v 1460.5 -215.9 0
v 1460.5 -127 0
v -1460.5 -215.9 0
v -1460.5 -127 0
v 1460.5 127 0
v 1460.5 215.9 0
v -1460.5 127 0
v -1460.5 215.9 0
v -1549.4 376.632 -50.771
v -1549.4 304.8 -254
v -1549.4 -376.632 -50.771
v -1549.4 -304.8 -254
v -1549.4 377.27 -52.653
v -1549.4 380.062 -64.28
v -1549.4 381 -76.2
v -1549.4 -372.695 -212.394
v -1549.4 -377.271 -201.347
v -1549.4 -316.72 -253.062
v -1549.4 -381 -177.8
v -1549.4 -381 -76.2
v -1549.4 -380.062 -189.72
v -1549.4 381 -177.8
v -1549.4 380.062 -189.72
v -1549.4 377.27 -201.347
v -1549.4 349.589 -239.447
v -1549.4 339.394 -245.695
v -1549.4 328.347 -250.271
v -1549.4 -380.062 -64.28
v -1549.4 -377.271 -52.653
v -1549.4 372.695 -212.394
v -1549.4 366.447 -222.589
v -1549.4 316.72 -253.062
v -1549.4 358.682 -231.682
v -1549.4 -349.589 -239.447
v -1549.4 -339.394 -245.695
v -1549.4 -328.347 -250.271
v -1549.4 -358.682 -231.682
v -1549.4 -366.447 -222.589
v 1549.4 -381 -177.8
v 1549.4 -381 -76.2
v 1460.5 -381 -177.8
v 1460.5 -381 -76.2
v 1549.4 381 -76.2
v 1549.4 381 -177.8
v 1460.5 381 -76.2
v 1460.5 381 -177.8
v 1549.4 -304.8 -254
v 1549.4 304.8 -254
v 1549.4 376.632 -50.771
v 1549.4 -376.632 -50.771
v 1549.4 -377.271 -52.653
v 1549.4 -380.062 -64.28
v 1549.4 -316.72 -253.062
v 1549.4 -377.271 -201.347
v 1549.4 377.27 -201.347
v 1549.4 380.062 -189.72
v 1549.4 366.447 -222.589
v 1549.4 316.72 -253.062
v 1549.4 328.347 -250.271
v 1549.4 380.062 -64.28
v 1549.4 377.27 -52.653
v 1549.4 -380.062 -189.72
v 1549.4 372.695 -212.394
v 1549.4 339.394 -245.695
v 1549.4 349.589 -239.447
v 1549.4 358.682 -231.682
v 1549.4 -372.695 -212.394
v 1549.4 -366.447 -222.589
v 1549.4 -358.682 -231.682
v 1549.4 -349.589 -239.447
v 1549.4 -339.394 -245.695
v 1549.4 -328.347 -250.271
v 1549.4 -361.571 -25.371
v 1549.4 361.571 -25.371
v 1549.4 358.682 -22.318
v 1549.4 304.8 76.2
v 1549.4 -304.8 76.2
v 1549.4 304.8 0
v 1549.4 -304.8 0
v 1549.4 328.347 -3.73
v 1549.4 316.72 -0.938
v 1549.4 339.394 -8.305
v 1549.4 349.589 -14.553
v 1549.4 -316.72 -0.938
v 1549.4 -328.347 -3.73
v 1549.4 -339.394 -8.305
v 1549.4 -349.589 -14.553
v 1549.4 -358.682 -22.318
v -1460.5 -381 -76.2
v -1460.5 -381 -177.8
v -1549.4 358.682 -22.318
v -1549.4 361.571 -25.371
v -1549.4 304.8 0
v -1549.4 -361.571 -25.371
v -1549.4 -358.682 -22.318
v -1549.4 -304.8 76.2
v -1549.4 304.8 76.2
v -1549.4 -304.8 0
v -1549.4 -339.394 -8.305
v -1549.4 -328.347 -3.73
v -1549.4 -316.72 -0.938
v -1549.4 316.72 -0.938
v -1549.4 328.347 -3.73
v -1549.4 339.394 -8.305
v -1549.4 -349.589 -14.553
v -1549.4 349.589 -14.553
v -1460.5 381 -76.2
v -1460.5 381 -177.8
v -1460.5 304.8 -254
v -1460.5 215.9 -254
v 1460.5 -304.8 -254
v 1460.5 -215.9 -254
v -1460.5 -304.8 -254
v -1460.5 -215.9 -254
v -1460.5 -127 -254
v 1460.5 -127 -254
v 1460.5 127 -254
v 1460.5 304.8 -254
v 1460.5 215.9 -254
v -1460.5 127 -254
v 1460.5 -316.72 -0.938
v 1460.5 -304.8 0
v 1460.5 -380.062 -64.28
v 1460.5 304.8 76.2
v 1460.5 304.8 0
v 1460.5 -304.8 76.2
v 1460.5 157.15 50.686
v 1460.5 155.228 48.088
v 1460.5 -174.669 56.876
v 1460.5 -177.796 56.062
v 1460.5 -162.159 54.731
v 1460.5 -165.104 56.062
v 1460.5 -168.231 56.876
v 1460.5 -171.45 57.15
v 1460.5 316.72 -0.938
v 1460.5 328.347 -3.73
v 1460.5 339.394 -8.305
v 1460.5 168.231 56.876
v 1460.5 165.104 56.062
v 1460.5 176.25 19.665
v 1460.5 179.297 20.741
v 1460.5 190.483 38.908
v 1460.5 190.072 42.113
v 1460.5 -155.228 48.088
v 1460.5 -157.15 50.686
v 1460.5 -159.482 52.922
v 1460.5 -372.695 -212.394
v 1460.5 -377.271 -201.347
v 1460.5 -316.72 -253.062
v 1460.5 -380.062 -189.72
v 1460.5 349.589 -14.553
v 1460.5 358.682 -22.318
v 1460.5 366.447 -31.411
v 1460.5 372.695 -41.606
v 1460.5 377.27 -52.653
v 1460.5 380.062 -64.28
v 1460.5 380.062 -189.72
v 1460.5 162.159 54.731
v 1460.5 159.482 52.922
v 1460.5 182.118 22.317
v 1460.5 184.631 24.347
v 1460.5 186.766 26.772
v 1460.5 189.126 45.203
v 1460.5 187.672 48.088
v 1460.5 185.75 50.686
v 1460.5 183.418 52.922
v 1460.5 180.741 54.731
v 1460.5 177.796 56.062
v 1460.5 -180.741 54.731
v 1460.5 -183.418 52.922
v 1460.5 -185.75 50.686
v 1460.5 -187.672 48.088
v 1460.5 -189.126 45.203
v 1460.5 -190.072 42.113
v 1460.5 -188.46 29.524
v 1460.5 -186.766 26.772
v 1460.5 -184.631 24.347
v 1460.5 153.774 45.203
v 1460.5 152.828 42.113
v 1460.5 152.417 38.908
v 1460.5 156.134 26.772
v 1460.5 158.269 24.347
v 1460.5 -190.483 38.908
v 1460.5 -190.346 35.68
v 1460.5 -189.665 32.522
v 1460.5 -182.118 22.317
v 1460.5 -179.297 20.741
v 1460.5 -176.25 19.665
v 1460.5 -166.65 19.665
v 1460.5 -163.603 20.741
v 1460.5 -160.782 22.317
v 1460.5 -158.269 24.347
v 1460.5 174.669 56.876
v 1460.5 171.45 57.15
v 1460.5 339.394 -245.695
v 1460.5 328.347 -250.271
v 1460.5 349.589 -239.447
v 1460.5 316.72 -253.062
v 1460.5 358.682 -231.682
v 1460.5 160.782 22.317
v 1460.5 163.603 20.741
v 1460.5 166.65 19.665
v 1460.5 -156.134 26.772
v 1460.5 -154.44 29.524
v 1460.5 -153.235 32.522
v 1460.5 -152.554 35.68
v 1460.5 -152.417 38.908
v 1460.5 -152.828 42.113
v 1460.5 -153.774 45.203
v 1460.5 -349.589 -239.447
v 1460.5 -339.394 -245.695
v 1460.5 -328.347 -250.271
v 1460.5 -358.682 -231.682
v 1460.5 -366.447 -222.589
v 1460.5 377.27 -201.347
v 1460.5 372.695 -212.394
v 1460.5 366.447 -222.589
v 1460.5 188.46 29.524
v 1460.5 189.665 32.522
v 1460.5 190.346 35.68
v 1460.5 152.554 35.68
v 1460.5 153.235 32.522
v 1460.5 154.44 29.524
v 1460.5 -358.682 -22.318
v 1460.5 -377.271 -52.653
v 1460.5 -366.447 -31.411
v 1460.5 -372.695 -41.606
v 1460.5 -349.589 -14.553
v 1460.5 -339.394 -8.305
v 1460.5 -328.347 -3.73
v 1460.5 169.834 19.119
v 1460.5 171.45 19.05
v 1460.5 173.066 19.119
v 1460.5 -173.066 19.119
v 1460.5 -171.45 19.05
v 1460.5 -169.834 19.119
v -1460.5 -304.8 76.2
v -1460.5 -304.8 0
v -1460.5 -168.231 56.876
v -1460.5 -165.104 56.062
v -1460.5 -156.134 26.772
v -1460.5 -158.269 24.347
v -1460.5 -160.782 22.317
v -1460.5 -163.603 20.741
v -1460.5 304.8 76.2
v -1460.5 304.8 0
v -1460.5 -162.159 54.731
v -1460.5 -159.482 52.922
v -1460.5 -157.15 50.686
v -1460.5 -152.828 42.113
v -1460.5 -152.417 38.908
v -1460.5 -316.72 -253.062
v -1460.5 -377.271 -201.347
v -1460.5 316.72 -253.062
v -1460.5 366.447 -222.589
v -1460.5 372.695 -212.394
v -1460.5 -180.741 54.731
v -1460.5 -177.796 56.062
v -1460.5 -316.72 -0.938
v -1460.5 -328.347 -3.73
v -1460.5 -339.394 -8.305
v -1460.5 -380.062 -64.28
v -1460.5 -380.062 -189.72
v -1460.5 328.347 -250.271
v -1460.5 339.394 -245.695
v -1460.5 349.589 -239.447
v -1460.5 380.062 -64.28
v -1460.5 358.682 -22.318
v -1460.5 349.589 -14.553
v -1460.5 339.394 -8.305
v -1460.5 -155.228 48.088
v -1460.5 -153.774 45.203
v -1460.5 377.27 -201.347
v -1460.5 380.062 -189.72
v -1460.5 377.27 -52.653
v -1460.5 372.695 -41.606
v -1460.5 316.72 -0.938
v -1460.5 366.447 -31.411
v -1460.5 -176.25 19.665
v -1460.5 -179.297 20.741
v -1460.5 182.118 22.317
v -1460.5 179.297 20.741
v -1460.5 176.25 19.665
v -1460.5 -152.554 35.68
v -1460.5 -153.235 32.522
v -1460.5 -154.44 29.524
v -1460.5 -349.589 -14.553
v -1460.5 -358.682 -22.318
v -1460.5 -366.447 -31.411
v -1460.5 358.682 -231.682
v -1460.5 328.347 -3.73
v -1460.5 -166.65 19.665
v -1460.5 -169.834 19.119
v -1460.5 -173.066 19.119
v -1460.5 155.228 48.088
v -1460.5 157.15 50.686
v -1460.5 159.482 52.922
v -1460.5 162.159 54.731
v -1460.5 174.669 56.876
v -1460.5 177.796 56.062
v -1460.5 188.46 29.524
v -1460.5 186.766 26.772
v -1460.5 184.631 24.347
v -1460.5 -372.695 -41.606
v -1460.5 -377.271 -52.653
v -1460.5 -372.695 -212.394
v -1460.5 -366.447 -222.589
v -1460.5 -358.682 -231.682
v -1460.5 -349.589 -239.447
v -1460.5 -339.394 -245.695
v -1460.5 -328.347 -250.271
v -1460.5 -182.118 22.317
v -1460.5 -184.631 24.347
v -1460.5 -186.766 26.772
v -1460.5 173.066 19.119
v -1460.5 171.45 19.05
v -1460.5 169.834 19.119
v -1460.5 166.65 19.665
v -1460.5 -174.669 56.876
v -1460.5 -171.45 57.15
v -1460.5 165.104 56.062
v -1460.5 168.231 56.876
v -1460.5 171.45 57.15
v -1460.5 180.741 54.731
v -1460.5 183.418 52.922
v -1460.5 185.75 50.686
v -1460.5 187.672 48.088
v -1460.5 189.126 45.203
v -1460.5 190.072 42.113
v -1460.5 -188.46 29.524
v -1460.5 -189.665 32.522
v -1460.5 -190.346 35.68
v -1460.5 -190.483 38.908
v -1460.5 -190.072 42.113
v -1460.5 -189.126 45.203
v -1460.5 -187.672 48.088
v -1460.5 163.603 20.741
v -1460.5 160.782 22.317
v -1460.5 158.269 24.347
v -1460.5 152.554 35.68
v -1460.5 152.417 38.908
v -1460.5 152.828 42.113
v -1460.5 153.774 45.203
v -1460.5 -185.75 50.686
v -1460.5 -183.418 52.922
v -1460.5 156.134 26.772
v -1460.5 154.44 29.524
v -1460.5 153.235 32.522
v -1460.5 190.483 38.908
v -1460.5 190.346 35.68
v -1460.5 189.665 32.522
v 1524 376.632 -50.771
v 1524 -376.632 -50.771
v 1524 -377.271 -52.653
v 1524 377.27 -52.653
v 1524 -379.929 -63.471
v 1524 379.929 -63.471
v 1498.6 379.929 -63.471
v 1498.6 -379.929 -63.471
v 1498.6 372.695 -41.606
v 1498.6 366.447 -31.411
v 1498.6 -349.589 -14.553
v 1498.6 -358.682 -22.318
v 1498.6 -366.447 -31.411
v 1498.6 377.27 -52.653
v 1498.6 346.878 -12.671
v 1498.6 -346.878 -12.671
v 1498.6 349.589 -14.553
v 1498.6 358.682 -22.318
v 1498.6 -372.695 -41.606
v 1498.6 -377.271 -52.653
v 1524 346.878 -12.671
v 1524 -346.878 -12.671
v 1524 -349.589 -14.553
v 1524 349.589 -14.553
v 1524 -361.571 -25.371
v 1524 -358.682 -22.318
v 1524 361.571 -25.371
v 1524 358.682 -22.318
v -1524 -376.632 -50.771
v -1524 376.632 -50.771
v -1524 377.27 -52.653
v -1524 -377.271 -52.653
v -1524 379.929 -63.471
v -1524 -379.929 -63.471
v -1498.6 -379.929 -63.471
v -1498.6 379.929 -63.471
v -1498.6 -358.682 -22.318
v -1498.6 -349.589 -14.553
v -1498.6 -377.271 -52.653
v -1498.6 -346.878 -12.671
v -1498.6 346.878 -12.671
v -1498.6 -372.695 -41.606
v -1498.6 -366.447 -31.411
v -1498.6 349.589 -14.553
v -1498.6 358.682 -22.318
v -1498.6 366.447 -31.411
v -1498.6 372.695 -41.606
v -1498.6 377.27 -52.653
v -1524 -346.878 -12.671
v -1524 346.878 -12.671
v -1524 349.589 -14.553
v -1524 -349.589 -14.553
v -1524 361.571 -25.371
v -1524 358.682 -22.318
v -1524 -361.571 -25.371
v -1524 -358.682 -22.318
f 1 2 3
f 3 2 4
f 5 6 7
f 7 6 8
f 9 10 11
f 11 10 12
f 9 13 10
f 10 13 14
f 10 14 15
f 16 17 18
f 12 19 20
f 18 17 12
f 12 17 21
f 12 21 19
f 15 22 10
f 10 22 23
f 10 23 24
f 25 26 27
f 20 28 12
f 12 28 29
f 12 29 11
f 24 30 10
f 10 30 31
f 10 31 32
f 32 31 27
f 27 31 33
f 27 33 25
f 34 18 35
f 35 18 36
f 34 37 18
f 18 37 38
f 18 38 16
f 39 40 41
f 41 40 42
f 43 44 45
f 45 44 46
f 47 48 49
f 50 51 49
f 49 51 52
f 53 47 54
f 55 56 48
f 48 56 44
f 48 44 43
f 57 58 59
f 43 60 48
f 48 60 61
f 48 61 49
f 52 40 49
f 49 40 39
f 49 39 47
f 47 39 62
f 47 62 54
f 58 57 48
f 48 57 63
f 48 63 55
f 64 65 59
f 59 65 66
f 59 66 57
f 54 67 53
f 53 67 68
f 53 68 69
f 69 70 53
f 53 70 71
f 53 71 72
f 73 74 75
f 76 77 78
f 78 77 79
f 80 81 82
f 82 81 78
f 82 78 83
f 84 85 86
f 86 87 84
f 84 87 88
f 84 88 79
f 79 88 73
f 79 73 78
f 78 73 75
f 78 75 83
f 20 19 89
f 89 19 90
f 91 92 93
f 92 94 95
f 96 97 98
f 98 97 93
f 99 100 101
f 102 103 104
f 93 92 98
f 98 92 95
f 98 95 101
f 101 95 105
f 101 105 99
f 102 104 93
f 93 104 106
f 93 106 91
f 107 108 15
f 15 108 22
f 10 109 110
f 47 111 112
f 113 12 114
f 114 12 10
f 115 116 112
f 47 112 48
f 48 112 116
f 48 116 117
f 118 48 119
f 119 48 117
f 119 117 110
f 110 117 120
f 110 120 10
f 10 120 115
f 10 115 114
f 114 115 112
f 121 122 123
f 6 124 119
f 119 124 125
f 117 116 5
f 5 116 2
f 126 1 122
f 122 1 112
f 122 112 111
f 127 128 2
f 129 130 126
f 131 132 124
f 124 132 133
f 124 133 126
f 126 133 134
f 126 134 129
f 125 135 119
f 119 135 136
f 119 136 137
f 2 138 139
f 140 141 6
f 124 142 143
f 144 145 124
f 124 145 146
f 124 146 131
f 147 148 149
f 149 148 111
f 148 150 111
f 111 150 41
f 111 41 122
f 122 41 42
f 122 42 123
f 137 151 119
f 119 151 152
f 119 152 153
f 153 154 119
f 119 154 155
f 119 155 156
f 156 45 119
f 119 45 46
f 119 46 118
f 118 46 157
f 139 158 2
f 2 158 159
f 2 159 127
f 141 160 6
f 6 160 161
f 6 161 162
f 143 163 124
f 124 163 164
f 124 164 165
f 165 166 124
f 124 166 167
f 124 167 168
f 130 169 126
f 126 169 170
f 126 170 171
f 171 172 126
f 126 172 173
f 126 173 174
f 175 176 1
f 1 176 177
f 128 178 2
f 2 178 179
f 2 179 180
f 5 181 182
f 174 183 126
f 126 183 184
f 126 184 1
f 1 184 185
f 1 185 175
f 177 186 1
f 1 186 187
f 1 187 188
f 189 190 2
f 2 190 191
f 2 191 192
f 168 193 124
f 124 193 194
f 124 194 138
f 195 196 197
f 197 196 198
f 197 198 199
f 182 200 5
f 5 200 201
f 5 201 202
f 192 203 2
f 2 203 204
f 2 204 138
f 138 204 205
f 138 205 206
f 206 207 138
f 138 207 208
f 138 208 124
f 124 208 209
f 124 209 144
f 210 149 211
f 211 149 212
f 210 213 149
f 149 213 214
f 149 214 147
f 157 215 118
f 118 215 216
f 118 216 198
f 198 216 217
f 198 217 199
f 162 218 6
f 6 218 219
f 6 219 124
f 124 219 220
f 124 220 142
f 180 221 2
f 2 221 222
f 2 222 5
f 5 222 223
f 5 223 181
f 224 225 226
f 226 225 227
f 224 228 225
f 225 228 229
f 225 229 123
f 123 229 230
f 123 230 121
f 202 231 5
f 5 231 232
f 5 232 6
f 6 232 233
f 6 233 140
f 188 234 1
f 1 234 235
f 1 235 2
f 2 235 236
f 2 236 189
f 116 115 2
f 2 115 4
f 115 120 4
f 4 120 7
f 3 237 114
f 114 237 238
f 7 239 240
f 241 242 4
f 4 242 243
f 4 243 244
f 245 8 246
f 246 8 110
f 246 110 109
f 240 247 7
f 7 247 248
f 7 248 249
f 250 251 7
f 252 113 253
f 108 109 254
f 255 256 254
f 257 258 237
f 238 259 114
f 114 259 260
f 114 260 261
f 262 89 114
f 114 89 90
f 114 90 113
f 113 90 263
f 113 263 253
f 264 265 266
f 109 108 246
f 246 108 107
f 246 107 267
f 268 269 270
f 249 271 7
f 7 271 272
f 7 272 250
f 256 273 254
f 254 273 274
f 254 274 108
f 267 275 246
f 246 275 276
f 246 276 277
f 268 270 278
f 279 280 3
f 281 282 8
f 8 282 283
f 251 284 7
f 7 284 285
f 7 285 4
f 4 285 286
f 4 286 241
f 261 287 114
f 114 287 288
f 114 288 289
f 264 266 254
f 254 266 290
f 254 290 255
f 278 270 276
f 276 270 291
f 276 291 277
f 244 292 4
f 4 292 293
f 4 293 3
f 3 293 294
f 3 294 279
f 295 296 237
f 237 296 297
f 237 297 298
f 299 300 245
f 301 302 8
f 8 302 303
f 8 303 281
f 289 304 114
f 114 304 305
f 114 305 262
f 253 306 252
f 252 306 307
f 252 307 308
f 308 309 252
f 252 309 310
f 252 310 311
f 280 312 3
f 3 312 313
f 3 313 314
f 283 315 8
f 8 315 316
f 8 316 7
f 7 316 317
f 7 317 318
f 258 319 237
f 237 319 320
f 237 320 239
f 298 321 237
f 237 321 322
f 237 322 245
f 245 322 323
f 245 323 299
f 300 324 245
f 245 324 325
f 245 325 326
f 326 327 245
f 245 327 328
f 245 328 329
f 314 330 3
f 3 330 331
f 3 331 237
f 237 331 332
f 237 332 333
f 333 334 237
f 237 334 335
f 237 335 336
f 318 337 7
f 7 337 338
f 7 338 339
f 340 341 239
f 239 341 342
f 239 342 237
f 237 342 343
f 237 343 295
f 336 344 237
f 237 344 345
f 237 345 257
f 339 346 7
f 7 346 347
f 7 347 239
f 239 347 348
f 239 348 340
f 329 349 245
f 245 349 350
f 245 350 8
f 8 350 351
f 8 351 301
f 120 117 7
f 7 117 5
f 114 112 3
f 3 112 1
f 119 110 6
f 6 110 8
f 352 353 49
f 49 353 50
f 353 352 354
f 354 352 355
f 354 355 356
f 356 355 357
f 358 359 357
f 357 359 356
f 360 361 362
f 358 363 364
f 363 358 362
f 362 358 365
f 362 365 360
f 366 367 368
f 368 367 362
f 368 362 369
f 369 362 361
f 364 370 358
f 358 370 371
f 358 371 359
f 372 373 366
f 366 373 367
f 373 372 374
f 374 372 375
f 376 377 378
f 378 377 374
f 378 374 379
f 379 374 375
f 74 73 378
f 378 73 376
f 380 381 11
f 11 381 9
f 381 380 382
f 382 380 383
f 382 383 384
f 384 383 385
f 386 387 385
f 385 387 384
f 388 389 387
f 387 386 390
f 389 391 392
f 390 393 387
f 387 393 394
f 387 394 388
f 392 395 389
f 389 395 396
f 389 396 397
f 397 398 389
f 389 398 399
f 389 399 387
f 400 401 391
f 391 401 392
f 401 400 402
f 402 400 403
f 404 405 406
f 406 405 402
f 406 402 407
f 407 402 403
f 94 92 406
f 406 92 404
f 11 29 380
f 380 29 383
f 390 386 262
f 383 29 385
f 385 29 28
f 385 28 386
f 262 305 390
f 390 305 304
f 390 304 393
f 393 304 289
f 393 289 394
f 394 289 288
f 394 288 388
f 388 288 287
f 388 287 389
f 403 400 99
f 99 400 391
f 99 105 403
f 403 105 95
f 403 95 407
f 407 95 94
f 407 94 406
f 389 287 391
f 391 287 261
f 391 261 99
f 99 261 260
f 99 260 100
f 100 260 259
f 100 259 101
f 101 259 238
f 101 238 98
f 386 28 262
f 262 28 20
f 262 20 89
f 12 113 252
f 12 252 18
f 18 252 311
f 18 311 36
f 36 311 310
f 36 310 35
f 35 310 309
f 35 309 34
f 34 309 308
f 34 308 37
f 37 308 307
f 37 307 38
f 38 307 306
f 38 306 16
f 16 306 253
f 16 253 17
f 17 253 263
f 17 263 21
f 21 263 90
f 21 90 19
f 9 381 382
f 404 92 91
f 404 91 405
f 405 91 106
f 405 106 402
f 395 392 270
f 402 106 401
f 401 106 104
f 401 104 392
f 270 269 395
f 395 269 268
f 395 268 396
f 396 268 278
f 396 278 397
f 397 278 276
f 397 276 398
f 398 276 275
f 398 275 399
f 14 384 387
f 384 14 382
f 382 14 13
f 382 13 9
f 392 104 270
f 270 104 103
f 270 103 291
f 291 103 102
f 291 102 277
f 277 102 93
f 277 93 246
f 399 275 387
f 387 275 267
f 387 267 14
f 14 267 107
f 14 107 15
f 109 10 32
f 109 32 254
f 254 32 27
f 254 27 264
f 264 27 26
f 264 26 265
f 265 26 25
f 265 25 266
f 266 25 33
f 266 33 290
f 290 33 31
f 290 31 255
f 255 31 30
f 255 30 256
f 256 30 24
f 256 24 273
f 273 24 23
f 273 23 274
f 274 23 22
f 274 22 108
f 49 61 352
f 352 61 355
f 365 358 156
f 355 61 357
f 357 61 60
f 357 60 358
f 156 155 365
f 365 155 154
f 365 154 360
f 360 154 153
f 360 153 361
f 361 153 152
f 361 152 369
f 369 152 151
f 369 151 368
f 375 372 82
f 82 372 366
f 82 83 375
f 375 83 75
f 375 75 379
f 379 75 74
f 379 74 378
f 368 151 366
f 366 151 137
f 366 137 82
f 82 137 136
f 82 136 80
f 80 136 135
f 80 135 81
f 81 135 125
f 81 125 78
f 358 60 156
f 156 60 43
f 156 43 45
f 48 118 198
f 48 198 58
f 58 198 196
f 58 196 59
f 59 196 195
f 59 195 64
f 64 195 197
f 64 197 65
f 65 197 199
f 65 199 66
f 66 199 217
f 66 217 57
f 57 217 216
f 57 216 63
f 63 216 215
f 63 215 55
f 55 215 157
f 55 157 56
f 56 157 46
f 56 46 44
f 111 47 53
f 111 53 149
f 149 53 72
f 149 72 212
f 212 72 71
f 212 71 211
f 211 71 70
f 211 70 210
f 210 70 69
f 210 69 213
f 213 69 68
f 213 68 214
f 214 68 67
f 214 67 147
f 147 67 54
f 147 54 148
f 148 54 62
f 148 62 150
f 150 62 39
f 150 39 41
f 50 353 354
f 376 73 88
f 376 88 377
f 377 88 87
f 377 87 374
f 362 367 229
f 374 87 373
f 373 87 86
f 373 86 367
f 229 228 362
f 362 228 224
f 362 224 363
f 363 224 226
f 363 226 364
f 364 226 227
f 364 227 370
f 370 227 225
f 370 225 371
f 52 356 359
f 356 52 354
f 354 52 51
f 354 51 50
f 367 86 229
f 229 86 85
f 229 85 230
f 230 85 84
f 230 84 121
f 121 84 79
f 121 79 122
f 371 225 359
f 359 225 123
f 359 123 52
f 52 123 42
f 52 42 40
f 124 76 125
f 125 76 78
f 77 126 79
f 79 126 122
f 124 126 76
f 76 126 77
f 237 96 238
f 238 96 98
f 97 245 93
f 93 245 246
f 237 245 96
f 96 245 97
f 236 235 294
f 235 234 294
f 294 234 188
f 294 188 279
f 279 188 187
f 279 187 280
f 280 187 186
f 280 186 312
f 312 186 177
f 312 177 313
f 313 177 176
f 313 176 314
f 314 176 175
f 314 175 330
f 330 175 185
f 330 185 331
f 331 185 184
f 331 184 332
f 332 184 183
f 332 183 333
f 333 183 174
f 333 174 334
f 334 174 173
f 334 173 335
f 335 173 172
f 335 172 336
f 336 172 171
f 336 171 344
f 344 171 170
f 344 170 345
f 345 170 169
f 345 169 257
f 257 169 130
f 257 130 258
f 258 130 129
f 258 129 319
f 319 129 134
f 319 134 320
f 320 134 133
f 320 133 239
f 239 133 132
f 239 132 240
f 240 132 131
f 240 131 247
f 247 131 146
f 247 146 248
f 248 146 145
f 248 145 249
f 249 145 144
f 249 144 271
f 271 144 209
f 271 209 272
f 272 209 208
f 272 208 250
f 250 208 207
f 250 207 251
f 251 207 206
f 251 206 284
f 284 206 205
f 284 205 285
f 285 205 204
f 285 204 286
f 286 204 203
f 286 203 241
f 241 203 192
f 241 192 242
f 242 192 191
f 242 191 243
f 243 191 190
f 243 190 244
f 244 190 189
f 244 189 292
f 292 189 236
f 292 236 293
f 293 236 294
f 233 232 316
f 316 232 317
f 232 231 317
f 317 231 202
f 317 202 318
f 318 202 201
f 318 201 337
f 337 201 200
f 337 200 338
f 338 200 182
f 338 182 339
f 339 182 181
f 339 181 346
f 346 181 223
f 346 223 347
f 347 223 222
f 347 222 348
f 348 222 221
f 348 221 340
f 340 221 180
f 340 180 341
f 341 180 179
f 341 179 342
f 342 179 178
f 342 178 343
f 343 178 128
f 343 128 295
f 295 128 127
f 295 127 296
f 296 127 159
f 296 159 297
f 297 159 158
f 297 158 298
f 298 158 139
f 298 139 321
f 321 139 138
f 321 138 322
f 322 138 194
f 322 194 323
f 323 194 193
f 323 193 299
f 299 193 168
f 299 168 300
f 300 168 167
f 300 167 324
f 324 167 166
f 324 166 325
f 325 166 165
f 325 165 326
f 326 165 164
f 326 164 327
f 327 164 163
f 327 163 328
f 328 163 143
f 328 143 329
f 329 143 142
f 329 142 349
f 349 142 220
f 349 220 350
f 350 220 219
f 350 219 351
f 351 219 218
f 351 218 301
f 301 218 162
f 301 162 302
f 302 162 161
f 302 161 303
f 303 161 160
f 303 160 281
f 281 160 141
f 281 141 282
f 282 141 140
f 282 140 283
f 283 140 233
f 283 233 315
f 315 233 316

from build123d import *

# Parameters (mm, degrees)
SKETCH2_W           = 3098.8
SKETCH2_H           = 762
BOSS_EXTRUDE1_DEPTH = 254
SKETCH4_W           = 2921
SKETCH4_H           = 254
CUT_EXTRUDE2_DEPTH  = 255
SKETCH5_W           = 2921
SKETCH5_H           = 224.068342029
SKETCH5_H_2         = 209.470733182
CUT_EXTRUDE3_DEPTH  = 255
CUT_EXTRUDE5_START  = -762
CUT_EXTRUDE5_DEPTH  = 763
FILLET1_R           = 76.2
SKETCH9_W           = 88.9
SKETCH9_H           = 609.6
BOSS_EXTRUDE3_DEPTH = 76.2
SKETCH10_R          = 19.05
BOSS_EXTRUDE4_DEPTH = 2921


with BuildPart() as part:
    # Sketch2 → Boss-Extrude1 (new body)
    with BuildSketch(Plane.XY):
        Rectangle(SKETCH2_W, SKETCH2_H)
    extrude(amount=-BOSS_EXTRUDE1_DEPTH)

    # Sketch4 → Cut-Extrude2 (cut, through all)
    with BuildSketch(Plane.XY):
        Rectangle(SKETCH4_W, SKETCH4_H)
    extrude(amount=-CUT_EXTRUDE2_DEPTH, mode=Mode.SUBTRACT)

    # Sketch5 → Cut-Extrude3 (cut, through all)
    with BuildSketch(Plane.XY):
        with Locations((0, 327.934171015)):
            Rectangle(SKETCH5_W, SKETCH5_H)
        with Locations((0, -320.635366591)):
            Rectangle(SKETCH5_W, SKETCH5_H_2)
    extrude(amount=-CUT_EXTRUDE3_DEPTH, mode=Mode.SUBTRACT)

    # Sketch7 → Cut-Extrude5 (cut)
    with BuildSketch(Plane.XZ.offset(381).offset(CUT_EXTRUDE5_START)):
        Polygon((1524, -12.671415736), (1498.6, -12.671415736), (1498.6, -63.471415736), (1524, -63.471415736), (1524, -50.771415736), (1549.4, -50.771415736), (1549.4, -25.371415736), (1524, -25.371415736), align=None)
    cut_extrude5 = extrude(amount=CUT_EXTRUDE5_DEPTH, mode=Mode.SUBTRACT)

    # Mirror1: Cut-Extrude5 across plane
    add(cut_extrude5.mirror(Plane(origin=(0, 0, 0), x_dir=(0, 0, 1), z_dir=(1, 0, 0))), mode=Mode.SUBTRACT)

    # Fillet1
    fillet1_edges = [part.edges().sort_by_distance(p)[0] for p in [
        (-1504.95, -381, 0),
        (-1504.95, -381, -254),
        (-1504.95, 381, 0),
        (-1504.95, 381, -254),
        (1504.95, 381, 0),
        (1504.95, 381, -254),
        (1504.95, -381, -254),
        (1504.95, -381, 0),
    ]]
    fillet(fillet1_edges, radius=FILLET1_R)

    # Sketch9 → Boss-Extrude3 (add)
    with BuildSketch(Plane.XY):
        with Locations((1504.95, 0)):
            Rectangle(SKETCH9_W, SKETCH9_H)
    boss_extrude3 = extrude(amount=BOSS_EXTRUDE3_DEPTH)

    # Mirror6: Boss-Extrude3 across plane
    add(boss_extrude3.mirror(Plane(origin=(0, 0, 0), x_dir=(0, 0, 1), z_dir=(1, 0, 0))))

    # Sketch10 → Boss-Extrude4 (add)
    with BuildSketch(Plane(origin=(-1460.5, 0, 0), x_dir=(0, 0, -1), z_dir=(1, 0, 0))):
        with Locations((-38.1, -171.45)):
            Circle(SKETCH10_R)
    boss_extrude4 = extrude(amount=BOSS_EXTRUDE4_DEPTH)

    # Mirror7: Boss-Extrude4 across plane
    add(boss_extrude4.mirror(Plane.ZX))


solid = part.part
